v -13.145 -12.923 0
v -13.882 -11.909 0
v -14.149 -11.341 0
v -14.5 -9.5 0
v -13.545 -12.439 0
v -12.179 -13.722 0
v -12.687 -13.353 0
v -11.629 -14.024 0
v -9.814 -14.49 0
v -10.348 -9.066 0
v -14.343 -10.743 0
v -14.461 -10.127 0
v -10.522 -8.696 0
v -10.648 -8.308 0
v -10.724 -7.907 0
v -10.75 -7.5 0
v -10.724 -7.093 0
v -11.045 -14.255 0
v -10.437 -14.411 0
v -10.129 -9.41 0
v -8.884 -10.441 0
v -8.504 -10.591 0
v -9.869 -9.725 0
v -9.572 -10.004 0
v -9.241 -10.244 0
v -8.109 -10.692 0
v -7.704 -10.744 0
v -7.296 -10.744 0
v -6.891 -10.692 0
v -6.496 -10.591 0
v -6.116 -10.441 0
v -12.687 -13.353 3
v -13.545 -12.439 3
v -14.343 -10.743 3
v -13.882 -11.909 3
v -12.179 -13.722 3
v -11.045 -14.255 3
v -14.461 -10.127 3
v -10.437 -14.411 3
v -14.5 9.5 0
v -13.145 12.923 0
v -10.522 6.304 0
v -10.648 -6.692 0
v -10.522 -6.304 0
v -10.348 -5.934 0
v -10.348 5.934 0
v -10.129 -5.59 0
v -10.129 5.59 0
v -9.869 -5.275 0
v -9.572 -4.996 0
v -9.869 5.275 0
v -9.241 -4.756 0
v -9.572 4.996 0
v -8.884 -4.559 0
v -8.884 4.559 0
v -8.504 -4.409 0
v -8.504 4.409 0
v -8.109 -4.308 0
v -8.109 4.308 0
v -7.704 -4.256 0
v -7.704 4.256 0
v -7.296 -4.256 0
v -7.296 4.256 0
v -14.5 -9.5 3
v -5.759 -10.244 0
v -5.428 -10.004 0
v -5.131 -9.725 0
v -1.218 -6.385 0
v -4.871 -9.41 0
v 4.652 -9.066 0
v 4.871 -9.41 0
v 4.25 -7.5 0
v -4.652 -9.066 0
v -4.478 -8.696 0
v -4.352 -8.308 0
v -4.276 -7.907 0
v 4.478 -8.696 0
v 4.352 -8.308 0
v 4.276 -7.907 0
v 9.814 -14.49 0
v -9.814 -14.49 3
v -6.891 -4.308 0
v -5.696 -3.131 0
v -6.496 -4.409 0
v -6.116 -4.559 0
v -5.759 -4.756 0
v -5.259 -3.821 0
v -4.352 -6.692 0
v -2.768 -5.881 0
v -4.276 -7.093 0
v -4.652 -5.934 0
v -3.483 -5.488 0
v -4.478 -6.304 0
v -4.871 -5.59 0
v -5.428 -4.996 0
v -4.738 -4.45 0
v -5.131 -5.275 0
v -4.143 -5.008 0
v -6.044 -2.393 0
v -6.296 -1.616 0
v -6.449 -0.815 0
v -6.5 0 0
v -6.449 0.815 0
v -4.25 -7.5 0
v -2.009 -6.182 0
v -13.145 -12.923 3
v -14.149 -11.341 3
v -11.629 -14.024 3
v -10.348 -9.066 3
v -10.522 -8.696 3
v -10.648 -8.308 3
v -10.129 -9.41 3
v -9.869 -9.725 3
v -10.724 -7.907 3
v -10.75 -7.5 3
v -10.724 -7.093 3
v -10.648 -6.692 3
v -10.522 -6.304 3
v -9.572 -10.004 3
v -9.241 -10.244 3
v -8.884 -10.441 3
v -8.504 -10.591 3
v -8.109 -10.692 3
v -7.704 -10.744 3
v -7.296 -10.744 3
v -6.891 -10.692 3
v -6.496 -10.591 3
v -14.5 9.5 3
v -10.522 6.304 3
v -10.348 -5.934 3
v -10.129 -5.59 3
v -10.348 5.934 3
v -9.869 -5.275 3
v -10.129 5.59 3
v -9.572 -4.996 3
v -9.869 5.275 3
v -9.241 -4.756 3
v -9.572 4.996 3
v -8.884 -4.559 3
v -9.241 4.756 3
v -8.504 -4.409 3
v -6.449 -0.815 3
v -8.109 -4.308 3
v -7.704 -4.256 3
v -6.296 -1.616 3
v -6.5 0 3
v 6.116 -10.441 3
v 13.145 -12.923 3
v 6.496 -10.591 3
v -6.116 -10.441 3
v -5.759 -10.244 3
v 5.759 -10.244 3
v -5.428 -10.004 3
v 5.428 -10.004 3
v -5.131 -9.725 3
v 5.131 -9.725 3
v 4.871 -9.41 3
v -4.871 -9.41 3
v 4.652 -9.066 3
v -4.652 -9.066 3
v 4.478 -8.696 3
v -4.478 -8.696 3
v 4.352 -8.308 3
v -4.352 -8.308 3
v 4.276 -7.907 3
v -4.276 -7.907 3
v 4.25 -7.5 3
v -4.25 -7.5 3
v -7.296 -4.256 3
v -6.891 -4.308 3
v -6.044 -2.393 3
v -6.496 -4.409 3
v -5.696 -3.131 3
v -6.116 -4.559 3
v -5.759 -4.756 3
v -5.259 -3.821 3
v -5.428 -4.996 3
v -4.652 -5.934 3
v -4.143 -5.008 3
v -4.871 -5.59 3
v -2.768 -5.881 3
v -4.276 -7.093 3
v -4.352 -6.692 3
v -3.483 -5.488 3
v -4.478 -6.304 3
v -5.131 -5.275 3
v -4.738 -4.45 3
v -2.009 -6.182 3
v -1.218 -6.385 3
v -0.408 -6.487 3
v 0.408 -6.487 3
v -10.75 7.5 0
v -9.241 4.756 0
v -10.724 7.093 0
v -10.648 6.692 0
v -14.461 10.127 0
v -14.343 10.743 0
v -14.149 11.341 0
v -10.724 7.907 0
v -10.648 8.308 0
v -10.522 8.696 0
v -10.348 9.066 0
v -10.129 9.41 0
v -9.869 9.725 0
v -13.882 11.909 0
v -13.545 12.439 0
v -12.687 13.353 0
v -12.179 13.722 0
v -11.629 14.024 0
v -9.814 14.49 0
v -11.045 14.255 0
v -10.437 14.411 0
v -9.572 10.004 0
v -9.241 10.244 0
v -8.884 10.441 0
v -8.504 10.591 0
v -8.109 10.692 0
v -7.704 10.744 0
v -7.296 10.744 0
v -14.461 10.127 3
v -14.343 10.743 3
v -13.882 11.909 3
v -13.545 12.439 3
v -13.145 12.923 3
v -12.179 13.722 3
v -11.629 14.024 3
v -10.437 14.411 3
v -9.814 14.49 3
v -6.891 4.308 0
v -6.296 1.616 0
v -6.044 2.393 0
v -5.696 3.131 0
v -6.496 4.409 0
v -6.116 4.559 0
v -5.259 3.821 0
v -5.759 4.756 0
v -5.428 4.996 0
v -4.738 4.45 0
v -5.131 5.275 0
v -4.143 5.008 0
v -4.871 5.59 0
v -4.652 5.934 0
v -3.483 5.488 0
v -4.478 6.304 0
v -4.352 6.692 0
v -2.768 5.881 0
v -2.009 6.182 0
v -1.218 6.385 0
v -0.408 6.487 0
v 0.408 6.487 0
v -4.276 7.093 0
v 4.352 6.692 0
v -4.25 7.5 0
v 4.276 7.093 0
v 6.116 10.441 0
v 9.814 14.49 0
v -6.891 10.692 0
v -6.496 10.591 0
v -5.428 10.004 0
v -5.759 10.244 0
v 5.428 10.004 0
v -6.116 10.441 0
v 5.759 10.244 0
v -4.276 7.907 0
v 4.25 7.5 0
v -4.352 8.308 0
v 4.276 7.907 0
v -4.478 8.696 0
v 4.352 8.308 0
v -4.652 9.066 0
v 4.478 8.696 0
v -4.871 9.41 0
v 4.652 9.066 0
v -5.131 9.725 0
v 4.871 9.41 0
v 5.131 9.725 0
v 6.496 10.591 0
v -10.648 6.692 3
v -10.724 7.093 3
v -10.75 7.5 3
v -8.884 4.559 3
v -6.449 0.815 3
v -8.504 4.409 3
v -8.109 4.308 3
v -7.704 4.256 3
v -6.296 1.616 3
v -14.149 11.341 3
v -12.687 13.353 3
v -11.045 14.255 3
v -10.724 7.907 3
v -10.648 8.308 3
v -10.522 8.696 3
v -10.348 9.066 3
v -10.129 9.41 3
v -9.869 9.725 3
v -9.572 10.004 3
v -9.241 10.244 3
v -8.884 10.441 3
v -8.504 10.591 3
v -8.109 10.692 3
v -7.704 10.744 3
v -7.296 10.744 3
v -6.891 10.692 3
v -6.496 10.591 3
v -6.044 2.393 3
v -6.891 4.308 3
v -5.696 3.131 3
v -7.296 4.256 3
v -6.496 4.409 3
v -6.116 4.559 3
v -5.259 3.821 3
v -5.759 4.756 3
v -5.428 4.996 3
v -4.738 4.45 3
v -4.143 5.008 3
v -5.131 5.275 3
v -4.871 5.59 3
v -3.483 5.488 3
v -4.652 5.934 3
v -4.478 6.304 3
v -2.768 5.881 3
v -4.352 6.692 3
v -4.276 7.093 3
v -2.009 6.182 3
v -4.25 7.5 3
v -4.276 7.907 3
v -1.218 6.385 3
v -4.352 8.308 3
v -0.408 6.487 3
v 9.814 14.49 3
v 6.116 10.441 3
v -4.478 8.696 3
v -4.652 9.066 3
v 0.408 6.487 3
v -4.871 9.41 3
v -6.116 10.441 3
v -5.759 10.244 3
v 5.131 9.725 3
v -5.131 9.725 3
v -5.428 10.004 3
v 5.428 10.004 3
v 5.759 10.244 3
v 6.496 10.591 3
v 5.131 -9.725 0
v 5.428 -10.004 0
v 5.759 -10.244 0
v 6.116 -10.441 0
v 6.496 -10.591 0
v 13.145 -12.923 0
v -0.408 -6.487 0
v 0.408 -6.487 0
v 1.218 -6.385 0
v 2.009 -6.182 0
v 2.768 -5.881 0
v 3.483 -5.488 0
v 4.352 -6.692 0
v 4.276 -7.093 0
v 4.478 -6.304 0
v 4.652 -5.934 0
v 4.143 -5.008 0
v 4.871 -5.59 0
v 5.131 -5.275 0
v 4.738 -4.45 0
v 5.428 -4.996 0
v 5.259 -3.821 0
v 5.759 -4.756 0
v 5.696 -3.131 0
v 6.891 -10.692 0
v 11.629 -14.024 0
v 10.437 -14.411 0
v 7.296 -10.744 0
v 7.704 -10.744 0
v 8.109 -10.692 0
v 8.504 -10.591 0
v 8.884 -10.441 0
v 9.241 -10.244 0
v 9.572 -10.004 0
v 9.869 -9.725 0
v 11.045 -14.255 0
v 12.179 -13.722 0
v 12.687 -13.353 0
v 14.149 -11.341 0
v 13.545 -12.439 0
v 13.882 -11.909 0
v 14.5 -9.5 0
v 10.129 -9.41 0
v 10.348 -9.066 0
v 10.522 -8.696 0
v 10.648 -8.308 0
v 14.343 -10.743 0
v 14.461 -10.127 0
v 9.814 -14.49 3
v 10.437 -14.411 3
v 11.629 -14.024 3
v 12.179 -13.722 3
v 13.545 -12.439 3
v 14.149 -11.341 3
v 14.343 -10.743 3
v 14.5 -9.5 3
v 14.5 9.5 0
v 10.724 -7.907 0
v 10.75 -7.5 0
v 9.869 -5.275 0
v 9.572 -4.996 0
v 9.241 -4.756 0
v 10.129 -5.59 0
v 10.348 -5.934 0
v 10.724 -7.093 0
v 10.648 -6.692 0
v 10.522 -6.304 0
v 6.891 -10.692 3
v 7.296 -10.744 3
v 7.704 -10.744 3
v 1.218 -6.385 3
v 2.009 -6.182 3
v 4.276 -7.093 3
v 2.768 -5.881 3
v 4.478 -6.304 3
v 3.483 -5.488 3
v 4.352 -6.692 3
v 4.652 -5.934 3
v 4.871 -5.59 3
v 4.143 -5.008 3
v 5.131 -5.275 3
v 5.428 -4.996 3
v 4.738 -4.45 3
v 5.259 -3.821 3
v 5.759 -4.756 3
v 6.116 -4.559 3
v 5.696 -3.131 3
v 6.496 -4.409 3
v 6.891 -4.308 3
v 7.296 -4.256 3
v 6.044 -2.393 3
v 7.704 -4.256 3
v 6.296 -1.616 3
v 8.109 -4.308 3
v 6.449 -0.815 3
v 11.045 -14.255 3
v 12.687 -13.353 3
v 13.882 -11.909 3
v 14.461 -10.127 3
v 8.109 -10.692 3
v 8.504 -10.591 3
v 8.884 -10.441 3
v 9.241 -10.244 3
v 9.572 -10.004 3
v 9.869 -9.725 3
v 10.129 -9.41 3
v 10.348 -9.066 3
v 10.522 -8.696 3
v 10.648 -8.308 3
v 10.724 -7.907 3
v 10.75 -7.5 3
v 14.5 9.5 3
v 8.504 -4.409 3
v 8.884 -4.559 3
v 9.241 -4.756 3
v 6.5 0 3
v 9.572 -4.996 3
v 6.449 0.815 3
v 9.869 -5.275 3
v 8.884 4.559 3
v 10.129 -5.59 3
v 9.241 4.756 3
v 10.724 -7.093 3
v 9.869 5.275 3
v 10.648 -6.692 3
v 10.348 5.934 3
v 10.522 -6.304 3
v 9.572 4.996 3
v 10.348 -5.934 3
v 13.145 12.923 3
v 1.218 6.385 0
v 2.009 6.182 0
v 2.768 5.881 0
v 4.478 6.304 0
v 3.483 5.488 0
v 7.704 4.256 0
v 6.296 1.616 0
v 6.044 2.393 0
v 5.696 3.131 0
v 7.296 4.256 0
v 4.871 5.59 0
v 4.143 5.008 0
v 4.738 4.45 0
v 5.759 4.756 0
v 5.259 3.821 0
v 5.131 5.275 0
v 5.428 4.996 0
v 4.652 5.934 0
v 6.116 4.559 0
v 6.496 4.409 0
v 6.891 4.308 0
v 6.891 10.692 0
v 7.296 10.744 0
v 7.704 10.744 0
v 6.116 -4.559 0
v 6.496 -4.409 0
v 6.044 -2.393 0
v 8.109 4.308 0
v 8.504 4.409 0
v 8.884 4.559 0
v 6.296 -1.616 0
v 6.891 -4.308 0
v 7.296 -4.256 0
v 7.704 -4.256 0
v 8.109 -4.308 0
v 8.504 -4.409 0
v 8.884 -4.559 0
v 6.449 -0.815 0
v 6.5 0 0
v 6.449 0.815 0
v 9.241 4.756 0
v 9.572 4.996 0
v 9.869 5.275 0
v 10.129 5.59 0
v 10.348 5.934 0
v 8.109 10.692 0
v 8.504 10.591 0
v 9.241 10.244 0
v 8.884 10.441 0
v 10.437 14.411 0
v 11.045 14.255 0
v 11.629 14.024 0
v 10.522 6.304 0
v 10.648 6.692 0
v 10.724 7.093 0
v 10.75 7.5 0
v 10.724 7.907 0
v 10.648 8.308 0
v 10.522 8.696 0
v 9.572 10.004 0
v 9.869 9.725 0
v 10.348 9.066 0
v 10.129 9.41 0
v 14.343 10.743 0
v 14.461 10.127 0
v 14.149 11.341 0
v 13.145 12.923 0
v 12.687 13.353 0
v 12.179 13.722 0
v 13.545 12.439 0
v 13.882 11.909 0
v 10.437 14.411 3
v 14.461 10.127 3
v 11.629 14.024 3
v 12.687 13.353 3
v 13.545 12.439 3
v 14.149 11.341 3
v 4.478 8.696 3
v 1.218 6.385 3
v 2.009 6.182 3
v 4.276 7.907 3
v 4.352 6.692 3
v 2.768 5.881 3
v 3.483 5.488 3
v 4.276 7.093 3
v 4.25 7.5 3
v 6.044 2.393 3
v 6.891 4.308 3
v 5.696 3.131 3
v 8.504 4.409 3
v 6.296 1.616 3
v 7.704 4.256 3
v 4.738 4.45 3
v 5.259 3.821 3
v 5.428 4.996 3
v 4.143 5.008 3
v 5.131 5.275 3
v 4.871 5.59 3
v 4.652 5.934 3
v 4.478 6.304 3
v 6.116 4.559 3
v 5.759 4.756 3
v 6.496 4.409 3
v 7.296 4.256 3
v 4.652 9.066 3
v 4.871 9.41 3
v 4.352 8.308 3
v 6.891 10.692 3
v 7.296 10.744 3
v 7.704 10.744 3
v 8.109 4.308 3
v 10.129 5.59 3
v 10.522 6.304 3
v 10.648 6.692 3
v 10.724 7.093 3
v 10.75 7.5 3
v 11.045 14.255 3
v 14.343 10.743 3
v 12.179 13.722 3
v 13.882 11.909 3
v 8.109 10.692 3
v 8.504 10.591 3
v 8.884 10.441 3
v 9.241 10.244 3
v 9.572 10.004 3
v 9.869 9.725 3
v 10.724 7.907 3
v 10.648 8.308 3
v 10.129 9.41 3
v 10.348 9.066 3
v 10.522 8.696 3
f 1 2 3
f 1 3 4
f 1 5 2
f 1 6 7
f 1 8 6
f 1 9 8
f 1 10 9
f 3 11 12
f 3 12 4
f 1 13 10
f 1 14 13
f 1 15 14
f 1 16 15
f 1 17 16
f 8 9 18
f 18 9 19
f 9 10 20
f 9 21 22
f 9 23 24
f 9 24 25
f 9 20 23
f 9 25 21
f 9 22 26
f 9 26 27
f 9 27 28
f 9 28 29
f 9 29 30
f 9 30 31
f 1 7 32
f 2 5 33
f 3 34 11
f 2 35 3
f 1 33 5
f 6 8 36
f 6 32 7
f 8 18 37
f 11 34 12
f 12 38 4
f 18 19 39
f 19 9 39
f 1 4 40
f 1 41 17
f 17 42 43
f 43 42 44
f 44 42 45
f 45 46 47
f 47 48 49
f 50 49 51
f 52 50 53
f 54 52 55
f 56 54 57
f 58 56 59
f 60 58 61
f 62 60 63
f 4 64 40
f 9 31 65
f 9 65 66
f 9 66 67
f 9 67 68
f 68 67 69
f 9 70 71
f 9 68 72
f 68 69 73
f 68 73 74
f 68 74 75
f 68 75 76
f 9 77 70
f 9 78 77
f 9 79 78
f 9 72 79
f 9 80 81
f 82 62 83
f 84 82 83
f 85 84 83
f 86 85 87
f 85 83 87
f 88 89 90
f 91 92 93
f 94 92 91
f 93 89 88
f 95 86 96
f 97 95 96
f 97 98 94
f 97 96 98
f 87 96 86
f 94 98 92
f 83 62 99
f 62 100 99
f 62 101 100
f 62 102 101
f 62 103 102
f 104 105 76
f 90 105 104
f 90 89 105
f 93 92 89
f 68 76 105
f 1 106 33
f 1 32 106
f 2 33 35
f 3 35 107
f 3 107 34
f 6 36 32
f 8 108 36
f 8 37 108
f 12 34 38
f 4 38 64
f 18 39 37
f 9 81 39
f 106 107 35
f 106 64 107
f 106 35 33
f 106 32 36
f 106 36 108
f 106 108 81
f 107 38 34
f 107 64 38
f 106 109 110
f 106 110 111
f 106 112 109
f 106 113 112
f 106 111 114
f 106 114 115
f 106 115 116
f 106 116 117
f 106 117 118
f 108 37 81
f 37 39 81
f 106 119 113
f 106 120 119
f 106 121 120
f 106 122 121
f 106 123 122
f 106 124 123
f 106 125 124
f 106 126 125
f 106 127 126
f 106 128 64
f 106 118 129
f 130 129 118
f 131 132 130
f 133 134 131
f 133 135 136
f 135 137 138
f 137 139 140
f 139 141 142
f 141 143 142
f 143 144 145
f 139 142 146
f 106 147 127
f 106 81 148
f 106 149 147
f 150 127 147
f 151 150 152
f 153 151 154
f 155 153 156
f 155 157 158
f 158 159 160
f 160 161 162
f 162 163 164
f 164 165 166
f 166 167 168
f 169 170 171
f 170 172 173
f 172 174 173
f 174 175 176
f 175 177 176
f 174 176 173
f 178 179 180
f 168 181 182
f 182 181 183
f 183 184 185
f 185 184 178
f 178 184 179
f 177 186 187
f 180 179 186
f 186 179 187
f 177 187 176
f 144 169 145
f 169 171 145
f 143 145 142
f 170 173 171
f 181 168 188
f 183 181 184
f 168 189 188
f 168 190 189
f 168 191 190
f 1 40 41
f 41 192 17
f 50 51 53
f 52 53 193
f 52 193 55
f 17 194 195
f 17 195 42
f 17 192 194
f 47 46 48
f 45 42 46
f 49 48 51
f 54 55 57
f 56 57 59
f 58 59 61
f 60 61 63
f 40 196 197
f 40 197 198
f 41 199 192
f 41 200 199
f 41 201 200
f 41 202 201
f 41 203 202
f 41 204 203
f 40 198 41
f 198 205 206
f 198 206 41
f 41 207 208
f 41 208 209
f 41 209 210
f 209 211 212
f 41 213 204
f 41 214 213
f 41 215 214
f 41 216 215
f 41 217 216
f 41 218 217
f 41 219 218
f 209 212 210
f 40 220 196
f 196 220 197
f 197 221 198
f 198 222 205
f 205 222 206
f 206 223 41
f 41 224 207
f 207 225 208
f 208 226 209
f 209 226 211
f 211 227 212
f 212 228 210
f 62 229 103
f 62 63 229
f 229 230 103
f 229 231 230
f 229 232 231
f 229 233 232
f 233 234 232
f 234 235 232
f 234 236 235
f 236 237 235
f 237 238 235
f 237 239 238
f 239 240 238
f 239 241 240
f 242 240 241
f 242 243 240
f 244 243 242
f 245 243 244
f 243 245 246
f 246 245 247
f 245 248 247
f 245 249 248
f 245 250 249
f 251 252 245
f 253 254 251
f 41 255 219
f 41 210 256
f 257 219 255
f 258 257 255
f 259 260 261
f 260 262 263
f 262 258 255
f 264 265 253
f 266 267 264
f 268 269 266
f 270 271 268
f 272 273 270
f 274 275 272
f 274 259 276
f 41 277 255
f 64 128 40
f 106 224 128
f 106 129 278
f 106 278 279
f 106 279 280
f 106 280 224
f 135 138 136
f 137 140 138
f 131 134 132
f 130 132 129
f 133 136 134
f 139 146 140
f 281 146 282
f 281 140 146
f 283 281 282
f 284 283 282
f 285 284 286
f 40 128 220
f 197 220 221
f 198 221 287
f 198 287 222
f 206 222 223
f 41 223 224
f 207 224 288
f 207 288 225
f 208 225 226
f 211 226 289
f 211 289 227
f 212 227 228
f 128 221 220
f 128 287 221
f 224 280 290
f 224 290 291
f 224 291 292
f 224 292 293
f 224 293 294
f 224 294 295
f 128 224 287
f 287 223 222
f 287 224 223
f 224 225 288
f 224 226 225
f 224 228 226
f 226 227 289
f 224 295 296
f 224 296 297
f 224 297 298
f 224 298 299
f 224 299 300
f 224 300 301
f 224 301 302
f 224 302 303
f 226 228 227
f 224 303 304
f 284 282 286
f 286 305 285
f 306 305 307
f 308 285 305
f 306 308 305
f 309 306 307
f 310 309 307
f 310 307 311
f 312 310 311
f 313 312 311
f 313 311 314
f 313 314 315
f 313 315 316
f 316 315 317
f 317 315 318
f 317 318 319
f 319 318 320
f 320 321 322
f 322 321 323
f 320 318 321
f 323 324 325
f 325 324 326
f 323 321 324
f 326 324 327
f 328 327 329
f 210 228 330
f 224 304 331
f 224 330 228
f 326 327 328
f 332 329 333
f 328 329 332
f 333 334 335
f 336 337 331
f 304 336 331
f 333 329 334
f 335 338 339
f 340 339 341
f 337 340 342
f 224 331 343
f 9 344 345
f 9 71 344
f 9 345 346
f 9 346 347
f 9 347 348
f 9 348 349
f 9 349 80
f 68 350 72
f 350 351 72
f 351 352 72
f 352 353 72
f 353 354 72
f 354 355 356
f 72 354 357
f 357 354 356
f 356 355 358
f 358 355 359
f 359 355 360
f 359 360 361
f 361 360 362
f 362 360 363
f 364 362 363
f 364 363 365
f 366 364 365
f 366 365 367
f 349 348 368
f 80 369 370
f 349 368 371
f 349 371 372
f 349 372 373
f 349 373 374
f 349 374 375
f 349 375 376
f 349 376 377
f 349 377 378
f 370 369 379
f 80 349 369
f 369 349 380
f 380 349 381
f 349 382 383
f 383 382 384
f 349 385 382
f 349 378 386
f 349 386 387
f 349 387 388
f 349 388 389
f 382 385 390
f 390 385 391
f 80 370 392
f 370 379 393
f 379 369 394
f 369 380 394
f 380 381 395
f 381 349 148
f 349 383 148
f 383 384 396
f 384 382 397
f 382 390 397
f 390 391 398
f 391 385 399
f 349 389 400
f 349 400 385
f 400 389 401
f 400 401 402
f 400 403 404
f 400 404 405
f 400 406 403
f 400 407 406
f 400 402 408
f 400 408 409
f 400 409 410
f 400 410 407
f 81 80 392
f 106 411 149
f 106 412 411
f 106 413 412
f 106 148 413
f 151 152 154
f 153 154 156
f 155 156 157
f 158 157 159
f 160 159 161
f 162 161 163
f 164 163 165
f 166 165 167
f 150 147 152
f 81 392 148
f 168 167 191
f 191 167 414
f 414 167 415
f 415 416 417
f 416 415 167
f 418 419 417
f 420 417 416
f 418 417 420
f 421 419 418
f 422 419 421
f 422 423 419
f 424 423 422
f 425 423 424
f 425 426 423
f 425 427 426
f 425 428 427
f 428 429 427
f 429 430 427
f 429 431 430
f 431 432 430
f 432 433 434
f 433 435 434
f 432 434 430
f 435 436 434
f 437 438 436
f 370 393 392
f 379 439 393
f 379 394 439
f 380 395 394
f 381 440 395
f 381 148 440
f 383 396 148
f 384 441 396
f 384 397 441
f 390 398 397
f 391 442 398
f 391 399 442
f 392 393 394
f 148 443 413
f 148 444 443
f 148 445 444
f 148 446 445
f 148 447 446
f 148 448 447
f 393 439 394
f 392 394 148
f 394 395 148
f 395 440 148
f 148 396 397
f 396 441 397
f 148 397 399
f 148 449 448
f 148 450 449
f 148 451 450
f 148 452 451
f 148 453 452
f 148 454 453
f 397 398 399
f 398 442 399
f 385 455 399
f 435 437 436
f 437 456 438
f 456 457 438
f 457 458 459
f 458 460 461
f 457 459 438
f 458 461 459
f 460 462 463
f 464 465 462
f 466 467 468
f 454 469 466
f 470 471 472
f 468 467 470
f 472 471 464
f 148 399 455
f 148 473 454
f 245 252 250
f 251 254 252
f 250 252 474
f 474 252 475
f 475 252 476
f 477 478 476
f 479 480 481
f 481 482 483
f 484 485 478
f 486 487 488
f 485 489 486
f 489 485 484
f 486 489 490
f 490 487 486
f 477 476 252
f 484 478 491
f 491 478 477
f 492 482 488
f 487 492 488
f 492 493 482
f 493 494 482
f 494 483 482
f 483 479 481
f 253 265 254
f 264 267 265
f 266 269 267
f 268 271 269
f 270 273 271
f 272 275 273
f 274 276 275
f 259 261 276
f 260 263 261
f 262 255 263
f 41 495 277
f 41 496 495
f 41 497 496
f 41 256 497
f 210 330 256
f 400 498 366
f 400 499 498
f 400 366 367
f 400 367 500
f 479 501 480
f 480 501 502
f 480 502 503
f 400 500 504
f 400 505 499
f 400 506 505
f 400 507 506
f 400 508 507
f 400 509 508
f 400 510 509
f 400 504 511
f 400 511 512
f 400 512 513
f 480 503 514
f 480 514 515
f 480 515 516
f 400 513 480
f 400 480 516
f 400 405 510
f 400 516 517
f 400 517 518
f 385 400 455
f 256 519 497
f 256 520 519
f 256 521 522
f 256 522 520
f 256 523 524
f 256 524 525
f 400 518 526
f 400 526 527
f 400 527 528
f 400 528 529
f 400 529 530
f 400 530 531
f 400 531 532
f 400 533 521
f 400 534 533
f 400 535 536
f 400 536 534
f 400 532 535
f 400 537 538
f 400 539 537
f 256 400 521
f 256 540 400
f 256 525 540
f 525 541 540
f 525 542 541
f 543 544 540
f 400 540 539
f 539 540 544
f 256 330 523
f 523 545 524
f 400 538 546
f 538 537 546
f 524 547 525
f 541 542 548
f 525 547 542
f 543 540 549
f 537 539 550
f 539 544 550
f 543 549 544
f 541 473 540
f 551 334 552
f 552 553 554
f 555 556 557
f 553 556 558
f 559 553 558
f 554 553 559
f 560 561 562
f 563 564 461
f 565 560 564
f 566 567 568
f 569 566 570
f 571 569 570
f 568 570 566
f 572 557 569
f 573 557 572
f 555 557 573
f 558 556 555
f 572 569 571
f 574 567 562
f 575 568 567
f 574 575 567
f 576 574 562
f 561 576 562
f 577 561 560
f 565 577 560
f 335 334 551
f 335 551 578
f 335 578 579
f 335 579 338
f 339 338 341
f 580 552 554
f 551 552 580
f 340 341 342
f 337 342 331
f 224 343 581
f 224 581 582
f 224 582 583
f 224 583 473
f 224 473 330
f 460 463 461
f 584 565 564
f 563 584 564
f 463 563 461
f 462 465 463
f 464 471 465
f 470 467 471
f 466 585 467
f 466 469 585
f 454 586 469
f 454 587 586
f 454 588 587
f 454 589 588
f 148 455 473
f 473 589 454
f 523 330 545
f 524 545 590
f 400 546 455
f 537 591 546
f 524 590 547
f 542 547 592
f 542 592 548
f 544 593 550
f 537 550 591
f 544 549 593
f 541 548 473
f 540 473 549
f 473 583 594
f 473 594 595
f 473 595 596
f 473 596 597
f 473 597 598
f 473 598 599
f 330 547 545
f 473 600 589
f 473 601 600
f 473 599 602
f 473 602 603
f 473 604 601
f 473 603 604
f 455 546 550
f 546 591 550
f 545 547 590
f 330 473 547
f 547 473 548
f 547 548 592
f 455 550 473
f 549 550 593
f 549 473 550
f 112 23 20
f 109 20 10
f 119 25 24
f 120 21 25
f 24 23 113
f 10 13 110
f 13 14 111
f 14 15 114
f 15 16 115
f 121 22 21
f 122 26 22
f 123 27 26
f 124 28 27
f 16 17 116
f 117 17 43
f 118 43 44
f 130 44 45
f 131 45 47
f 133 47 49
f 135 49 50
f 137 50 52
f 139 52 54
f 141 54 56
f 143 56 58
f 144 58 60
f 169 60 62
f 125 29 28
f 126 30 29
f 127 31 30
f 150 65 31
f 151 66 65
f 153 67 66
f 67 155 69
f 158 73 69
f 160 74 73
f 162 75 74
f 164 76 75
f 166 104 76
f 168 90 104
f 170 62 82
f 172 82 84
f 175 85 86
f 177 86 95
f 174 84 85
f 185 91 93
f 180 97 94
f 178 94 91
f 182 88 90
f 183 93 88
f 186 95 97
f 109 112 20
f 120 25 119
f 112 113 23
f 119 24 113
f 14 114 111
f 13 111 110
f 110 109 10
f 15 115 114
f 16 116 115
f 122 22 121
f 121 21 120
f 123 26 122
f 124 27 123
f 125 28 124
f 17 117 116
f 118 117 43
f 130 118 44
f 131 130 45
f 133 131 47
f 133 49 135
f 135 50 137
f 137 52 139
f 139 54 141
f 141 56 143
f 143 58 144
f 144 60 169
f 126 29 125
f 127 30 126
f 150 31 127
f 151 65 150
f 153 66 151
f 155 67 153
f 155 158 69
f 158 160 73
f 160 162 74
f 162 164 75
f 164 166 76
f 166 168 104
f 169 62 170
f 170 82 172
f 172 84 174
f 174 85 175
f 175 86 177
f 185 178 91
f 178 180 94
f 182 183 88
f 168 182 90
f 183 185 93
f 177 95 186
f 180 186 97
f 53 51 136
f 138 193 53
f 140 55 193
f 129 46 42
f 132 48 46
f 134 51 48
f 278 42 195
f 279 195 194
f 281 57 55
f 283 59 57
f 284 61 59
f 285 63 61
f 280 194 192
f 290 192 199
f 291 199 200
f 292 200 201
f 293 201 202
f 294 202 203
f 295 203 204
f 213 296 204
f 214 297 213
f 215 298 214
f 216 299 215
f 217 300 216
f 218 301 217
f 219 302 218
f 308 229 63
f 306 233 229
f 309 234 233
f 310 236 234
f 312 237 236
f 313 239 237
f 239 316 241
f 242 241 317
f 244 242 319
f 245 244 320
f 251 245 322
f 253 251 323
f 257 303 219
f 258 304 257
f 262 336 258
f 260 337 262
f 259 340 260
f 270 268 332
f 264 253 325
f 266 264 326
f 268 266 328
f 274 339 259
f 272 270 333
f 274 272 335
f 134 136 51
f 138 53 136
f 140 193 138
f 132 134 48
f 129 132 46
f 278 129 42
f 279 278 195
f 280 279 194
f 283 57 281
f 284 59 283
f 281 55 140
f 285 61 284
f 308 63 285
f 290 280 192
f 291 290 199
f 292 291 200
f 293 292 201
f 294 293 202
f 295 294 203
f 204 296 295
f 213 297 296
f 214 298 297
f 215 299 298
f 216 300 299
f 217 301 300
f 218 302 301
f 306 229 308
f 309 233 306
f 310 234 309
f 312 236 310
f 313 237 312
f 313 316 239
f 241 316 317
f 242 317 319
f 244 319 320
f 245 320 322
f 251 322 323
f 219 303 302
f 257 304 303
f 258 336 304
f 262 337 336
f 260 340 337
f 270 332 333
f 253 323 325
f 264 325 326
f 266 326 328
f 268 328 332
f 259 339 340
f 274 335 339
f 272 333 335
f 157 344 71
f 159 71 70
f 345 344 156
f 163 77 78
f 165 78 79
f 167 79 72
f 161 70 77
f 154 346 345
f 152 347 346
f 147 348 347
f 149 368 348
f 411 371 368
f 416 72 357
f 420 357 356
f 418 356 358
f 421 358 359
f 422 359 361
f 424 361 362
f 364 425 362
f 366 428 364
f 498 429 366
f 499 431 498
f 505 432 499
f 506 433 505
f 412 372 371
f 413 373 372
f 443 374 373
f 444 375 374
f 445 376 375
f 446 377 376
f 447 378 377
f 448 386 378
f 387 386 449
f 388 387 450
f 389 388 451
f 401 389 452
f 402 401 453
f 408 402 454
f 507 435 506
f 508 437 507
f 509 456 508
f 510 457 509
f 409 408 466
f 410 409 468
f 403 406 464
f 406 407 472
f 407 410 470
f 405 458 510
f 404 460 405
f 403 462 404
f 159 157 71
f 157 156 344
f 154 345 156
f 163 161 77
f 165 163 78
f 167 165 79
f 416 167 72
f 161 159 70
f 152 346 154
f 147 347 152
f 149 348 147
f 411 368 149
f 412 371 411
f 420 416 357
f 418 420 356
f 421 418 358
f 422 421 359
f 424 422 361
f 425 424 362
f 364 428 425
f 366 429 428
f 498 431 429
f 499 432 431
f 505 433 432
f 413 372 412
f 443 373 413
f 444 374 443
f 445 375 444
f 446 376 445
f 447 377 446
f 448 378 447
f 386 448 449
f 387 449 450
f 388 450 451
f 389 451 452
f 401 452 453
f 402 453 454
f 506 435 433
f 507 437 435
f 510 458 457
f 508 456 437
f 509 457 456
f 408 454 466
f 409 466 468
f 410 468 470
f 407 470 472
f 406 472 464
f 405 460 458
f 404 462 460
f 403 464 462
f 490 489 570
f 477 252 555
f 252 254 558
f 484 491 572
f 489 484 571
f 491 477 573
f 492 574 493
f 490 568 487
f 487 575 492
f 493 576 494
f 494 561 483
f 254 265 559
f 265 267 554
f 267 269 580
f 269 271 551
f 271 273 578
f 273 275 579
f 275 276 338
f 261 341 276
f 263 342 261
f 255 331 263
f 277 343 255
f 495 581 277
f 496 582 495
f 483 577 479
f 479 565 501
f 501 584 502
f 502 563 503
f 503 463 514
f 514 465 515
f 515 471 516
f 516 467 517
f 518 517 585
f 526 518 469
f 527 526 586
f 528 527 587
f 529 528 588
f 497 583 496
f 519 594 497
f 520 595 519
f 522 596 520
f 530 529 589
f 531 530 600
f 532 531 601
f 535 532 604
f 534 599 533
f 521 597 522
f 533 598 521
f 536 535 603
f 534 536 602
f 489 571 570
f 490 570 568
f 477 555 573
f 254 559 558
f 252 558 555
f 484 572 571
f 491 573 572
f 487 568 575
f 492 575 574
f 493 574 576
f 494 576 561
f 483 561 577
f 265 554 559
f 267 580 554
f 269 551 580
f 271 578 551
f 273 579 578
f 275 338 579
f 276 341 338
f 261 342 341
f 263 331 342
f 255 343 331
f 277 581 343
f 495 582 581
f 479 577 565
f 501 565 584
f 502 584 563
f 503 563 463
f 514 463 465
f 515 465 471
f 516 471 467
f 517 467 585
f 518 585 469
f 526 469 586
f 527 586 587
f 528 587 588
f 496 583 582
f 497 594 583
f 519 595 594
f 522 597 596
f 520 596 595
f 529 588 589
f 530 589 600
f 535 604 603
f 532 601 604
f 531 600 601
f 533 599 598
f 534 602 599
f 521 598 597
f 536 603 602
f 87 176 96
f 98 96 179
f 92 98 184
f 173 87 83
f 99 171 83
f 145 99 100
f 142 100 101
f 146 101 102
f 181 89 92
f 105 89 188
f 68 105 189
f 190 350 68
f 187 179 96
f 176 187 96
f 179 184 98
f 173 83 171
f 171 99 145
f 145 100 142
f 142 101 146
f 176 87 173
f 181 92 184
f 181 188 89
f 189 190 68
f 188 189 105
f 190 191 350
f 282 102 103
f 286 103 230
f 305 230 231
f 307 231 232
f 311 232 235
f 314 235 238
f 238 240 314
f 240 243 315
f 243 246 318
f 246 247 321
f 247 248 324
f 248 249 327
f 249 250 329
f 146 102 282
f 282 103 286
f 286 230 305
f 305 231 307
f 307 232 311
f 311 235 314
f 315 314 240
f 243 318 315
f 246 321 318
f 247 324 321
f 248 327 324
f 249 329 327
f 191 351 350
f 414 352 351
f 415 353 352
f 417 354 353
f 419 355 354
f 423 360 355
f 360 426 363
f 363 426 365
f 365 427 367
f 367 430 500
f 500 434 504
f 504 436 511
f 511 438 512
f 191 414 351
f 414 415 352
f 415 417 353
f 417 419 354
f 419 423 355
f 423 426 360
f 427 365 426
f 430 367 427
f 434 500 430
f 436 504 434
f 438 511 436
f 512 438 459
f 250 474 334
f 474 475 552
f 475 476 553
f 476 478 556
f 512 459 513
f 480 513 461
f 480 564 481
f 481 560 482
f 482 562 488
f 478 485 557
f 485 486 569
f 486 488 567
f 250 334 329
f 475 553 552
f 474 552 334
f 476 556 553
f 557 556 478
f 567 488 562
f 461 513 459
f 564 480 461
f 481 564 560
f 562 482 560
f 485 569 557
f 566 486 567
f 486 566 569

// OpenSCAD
$fn = 50;

difference() {
	union() {
		hull() {
			translate(v = [-9.5, 9.5, 0]) {
				cylinder(h = 3, r = 5);
			}
			translate(v = [9.5, 9.5, 0]) {
				cylinder(h = 3, r = 5);
			}
			translate(v = [-9.5, -9.5, 0]) {
				cylinder(h = 3, r = 5);
			}
			translate(v = [9.5, -9.5, 0]) {
				cylinder(h = 3, r = 5);
			}
		}
	}
	union() {
		translate(v = [-7.5, -7.5, -100.0]) {
			cylinder(h = 200, r = 3.25);
		}
		translate(v = [-7.5, 7.5, -100.0]) {
			cylinder(h = 200, r = 3.25);
		}
		translate(v = [7.5, -7.5, -100.0]) {
			cylinder(h = 200, r = 3.25);
		}
		translate(v = [7.5, 7.5, -100.0]) {
			cylinder(h = 200, r = 3.25);
		}
		translate(v = [-7.5, -7.5, -100.0]) {
			cylinder(h = 200, r = 1.8);
		}
		translate(v = [-7.5, 7.5, -100.0]) {
			cylinder(h = 200, r = 1.8);
		}
		translate(v = [7.5, -7.5, -100.0]) {
			cylinder(h = 200, r = 1.8);
		}
		translate(v = [7.5, 7.5, -100.0]) {
			cylinder(h = 200, r = 1.8);
		}
		cylinder(h = 3, r = 6.5);
	}
}
